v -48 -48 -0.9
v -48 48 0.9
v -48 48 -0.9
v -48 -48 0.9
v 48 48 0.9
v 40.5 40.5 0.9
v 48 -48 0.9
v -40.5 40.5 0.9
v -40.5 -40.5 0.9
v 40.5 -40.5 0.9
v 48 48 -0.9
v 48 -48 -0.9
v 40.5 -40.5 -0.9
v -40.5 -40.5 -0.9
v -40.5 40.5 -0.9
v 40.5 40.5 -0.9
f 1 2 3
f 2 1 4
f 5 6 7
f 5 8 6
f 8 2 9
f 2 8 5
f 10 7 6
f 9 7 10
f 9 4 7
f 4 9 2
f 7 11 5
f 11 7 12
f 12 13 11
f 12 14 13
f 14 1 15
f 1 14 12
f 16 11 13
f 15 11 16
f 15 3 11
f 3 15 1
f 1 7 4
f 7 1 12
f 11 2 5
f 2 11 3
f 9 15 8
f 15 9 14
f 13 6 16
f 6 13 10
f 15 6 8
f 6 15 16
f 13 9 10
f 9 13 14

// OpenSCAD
difference(){
    cube([96,96,1.8],center=true);
    cube([81,81,2],center=true);
};
